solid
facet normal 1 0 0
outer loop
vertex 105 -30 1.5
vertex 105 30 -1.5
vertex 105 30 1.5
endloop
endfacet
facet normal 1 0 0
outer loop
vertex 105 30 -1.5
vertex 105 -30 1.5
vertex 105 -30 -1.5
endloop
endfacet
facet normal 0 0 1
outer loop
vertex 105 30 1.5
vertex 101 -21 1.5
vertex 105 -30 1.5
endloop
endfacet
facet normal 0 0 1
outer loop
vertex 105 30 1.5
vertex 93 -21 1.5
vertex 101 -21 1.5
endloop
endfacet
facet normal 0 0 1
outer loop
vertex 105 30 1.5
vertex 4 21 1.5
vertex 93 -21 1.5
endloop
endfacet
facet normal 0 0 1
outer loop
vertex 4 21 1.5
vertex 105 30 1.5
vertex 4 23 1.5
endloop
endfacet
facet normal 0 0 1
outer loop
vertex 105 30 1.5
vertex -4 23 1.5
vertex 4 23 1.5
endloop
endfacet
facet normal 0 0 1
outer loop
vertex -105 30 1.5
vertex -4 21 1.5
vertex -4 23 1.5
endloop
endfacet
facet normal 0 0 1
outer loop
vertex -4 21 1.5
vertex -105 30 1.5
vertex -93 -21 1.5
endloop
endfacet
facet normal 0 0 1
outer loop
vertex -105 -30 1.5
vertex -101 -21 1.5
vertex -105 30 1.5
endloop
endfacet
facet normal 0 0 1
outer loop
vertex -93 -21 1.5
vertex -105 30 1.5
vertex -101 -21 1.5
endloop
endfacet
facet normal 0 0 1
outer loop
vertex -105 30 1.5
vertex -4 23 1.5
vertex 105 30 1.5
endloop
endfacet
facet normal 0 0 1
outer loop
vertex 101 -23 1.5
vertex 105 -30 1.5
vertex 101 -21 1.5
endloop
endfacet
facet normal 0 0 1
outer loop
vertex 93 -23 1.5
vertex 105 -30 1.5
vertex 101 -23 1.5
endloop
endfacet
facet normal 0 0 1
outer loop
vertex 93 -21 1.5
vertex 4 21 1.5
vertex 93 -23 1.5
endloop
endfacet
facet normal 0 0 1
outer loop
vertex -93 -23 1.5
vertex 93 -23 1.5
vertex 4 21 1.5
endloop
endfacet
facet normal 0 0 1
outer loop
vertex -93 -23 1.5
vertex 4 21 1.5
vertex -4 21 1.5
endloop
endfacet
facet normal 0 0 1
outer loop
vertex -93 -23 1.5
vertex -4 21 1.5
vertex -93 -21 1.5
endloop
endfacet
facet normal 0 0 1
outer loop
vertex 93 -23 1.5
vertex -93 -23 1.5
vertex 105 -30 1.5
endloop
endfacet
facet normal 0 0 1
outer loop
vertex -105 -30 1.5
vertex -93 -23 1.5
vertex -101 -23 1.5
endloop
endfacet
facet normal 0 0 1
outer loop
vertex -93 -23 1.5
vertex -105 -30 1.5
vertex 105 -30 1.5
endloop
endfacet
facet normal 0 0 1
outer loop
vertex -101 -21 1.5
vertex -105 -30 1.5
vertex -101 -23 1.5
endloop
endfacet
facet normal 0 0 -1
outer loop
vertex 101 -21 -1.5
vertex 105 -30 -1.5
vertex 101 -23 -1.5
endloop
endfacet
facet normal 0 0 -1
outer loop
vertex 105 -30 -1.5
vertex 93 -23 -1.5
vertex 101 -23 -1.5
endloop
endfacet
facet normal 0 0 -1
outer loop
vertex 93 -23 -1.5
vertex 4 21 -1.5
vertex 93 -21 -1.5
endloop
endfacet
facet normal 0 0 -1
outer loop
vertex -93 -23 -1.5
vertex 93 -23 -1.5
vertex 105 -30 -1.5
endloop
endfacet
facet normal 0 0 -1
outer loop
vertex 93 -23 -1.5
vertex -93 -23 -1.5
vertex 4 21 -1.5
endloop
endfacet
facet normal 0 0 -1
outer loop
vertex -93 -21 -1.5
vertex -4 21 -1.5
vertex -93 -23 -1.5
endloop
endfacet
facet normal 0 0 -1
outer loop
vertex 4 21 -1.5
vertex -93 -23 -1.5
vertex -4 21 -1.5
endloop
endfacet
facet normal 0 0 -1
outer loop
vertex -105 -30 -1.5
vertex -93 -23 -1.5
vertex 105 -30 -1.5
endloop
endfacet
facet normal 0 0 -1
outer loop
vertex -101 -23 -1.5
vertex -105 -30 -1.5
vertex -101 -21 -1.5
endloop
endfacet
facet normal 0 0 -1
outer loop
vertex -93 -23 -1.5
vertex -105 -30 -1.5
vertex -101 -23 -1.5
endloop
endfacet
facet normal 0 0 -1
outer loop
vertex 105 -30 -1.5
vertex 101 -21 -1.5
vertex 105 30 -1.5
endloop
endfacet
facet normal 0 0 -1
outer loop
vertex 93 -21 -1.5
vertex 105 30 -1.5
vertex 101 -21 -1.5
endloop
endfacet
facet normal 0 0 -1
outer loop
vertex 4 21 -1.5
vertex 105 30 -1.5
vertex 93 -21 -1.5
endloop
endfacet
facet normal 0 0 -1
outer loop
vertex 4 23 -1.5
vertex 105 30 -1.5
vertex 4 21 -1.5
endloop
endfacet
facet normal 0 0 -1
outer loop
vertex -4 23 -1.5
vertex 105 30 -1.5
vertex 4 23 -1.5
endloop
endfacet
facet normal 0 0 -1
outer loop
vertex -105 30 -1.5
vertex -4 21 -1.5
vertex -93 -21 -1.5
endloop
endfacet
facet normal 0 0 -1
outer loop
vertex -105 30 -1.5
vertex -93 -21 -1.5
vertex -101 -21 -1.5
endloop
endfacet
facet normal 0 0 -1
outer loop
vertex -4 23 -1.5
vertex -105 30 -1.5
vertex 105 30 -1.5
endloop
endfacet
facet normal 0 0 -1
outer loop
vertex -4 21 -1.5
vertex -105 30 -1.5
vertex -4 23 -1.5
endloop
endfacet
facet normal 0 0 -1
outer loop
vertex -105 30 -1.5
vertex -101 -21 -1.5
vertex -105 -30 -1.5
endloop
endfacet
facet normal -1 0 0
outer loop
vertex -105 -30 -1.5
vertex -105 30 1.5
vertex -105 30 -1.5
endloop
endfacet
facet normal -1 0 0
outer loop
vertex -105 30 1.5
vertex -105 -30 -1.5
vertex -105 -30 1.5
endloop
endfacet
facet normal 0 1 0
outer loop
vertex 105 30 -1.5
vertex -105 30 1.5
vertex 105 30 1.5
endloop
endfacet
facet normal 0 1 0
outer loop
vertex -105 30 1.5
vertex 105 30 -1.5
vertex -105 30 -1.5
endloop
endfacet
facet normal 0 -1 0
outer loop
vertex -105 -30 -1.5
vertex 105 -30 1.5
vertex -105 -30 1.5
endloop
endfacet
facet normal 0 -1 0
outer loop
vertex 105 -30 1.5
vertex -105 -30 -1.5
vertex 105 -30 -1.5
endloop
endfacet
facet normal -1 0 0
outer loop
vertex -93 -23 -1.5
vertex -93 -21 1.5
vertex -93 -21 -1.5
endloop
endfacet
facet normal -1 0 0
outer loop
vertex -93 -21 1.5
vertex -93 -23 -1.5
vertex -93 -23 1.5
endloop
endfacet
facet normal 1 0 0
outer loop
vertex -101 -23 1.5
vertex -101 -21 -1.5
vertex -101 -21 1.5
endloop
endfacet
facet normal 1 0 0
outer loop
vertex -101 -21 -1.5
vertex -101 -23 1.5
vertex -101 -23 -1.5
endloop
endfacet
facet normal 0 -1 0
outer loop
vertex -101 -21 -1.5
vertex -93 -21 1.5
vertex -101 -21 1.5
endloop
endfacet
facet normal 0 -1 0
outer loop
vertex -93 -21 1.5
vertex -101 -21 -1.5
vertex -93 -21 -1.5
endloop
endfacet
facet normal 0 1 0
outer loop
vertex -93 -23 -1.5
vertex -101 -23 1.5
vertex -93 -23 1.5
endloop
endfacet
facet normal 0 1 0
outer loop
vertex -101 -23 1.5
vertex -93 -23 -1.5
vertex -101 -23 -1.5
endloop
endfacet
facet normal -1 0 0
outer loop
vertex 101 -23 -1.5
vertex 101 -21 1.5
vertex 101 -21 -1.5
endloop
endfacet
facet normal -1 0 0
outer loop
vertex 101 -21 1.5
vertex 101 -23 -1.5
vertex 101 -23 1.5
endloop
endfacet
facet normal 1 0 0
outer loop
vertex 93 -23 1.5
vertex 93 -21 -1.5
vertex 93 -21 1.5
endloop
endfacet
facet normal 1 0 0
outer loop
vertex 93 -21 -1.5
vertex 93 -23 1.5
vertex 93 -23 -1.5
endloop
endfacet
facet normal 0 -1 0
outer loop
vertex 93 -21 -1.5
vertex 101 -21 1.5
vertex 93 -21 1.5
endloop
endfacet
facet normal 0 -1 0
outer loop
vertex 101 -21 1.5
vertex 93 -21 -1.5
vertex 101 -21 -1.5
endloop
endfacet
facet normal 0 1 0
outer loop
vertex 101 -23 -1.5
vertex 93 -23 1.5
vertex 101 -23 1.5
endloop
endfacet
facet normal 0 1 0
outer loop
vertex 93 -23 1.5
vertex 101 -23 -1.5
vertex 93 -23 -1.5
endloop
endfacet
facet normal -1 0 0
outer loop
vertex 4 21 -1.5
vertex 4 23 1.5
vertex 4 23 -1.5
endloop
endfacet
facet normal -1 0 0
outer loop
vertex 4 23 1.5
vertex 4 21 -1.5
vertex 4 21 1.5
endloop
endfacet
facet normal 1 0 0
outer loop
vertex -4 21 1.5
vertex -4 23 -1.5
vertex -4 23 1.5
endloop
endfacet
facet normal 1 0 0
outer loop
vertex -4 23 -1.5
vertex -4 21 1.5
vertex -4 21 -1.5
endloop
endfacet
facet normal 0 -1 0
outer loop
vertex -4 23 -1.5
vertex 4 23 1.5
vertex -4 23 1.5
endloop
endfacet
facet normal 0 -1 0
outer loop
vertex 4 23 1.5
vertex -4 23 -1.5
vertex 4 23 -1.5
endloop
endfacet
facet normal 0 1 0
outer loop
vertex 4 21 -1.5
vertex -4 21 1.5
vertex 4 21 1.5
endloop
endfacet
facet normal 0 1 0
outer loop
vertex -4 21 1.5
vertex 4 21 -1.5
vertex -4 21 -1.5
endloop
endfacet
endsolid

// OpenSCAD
// ========================================
// a 210 x 60 x 3 mm plate with three 8 x 2 mm slots
// NeuroCAD canonical IR; dimensions are millimetres
// ========================================
$fn = 48;

difference() {
  cube(size=[210, 60, 3], center=true);
  translate([-97, -22, 0]) {
    cube(size=[8, 2, 5], center=true);
  }
  translate([97, -22, 0]) {
    cube(size=[8, 2, 5], center=true);
  }
  translate([0, 22, 0]) {
    cube(size=[8, 2, 5], center=true);
  }
}
